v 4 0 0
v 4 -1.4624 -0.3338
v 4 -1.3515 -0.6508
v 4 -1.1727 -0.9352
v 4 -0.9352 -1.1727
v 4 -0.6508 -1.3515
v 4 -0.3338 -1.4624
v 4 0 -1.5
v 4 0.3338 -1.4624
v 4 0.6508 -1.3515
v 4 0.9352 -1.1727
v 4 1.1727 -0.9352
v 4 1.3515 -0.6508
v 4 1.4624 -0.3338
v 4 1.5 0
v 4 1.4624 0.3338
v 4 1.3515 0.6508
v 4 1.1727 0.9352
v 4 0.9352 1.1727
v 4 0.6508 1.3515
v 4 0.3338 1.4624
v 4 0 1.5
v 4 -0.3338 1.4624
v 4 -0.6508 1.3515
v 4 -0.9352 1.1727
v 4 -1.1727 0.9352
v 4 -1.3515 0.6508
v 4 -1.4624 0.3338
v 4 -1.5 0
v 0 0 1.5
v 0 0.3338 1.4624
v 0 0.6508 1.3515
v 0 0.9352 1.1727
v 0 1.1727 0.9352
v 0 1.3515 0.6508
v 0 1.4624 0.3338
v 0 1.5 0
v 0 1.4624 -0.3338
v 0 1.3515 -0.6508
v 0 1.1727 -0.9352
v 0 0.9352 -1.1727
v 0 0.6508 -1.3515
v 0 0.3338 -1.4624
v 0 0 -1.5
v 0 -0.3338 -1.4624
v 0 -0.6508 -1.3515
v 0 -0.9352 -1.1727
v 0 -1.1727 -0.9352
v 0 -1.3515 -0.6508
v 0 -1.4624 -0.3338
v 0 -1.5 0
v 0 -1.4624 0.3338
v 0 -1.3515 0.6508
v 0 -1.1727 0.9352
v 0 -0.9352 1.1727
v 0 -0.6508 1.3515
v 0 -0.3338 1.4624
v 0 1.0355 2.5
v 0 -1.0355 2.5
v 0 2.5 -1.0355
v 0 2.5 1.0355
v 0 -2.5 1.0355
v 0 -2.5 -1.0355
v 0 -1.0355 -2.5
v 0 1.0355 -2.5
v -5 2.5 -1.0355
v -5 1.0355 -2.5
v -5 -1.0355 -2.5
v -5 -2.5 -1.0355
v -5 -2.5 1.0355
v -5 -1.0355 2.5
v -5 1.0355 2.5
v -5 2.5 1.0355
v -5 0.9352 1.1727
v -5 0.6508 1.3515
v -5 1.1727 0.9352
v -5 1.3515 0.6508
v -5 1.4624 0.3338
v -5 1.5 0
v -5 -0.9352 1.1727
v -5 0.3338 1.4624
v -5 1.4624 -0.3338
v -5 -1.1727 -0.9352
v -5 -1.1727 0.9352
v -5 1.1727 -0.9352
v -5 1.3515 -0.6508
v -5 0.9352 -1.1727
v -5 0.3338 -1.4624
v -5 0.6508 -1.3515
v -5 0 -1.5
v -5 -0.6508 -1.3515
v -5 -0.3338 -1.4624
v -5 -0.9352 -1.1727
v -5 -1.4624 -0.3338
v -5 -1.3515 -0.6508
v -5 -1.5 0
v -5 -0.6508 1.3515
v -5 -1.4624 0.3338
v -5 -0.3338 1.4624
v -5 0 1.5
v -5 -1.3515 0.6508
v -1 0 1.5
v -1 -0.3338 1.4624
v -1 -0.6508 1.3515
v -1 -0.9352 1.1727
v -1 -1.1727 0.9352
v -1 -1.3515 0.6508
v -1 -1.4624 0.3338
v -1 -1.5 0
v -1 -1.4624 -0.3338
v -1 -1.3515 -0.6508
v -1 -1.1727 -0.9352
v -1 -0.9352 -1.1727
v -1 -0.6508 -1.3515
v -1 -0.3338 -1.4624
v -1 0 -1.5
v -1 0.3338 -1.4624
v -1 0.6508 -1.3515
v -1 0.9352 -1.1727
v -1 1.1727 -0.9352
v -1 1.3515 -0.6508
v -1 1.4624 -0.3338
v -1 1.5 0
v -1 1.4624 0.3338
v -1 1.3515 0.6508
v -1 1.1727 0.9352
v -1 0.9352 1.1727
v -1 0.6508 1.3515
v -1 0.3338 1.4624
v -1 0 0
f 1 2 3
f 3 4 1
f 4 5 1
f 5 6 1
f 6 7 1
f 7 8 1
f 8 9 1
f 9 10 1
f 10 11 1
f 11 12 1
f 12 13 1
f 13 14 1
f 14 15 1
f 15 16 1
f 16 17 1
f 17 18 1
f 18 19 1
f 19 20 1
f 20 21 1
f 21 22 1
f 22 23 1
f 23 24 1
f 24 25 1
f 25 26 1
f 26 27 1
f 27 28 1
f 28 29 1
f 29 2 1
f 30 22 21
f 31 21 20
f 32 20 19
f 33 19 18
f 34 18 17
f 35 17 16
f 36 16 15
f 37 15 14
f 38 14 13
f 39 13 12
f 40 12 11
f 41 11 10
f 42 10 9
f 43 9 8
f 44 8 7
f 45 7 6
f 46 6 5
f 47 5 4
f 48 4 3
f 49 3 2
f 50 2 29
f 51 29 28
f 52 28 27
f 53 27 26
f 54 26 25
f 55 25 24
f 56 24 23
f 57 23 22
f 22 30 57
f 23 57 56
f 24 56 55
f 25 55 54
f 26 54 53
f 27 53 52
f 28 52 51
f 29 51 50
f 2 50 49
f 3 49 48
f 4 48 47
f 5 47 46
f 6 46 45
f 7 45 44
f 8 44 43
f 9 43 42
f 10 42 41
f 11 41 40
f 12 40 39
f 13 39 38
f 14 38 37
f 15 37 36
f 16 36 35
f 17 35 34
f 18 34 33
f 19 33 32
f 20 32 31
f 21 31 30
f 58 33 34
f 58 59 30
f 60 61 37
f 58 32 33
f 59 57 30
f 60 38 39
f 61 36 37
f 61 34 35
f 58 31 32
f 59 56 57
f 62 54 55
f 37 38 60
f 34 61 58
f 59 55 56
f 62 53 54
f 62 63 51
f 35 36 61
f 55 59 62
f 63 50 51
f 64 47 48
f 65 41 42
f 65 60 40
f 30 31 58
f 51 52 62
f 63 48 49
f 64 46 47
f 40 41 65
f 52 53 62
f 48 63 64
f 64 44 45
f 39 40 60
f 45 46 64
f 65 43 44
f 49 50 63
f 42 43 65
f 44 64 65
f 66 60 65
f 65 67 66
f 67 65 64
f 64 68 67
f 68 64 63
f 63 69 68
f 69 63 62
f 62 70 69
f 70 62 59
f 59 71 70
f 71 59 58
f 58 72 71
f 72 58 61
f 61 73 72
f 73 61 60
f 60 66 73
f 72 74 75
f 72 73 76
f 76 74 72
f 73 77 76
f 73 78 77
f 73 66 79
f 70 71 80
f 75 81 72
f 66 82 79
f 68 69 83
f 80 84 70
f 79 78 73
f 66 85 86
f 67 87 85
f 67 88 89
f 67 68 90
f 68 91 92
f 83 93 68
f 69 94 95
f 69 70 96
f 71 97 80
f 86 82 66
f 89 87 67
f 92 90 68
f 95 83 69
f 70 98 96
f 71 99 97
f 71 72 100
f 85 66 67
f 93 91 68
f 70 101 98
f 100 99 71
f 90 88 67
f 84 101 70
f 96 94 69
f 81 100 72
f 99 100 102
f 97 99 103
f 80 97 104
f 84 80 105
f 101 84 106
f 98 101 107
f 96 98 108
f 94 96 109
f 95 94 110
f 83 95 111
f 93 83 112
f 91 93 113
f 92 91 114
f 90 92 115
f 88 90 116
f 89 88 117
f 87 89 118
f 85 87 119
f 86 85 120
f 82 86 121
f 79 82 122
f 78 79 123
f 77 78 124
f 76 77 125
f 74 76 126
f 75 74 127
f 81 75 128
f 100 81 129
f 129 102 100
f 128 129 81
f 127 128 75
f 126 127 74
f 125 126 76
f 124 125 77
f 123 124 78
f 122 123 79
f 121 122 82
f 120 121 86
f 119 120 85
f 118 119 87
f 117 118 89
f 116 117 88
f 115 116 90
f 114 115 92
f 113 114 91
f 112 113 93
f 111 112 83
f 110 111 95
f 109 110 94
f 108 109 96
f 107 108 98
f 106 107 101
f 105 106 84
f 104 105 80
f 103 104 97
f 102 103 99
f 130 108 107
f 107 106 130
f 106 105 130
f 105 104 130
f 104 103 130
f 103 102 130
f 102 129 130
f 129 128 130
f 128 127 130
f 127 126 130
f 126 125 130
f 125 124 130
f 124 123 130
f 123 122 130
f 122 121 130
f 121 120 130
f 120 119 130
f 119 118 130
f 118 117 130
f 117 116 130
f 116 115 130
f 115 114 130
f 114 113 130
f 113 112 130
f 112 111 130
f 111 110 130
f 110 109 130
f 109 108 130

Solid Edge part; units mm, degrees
sketch "Sketch1" plane through (0, 0, 0) normal (-1, 0, 0) x (0, -1, 0)
  circle A0 centre (0, 0) radius 1.5
  dimension "D1" = 3
extrude "Protrusion1" add sketch "Sketch1" against normal blind 4
sketch "Sketch2" plane through (0, 0, 0) normal (-1, 0, 0) x (0, -1, 0)
  line L0 (-1.0355, -2.5) -> (1.0355, -2.5)
  line L1 (1.0355, -2.5) -> (2.5, -1.0355)
  line L2 (2.5, -1.0355) -> (2.5, 1.0355)
  line L3 (2.5, 1.0355) -> (1.0355, 2.5)
  line L4 (1.0355, 2.5) -> (-1.0355, 2.5)
  line L5 (-1.0355, 2.5) -> (-2.5, 1.0355)
  line L6 (-2.5, 1.0355) -> (-2.5, -1.0355)
  line L7 (-2.5, -1.0355) -> (-1.0355, -2.5)
  dimension "D1" = 2.0711
  dimension "D2" = 2.0711
  dimension "D3" = 2.0711
  dimension "D4" = 2.0711
extrude "Protrusion2" add sketch "Sketch2" along normal blind 5
sketch "Sketch3" plane through (-5, 0, 0) normal (-1, 0, 0) x (0, -1, 0)
  circle A0 centre (0, 0) radius 1.5
  dimension "D1" = 3
extrude "ExtrudedCutout_32" cut sketch "Sketch3" against normal blind 4
